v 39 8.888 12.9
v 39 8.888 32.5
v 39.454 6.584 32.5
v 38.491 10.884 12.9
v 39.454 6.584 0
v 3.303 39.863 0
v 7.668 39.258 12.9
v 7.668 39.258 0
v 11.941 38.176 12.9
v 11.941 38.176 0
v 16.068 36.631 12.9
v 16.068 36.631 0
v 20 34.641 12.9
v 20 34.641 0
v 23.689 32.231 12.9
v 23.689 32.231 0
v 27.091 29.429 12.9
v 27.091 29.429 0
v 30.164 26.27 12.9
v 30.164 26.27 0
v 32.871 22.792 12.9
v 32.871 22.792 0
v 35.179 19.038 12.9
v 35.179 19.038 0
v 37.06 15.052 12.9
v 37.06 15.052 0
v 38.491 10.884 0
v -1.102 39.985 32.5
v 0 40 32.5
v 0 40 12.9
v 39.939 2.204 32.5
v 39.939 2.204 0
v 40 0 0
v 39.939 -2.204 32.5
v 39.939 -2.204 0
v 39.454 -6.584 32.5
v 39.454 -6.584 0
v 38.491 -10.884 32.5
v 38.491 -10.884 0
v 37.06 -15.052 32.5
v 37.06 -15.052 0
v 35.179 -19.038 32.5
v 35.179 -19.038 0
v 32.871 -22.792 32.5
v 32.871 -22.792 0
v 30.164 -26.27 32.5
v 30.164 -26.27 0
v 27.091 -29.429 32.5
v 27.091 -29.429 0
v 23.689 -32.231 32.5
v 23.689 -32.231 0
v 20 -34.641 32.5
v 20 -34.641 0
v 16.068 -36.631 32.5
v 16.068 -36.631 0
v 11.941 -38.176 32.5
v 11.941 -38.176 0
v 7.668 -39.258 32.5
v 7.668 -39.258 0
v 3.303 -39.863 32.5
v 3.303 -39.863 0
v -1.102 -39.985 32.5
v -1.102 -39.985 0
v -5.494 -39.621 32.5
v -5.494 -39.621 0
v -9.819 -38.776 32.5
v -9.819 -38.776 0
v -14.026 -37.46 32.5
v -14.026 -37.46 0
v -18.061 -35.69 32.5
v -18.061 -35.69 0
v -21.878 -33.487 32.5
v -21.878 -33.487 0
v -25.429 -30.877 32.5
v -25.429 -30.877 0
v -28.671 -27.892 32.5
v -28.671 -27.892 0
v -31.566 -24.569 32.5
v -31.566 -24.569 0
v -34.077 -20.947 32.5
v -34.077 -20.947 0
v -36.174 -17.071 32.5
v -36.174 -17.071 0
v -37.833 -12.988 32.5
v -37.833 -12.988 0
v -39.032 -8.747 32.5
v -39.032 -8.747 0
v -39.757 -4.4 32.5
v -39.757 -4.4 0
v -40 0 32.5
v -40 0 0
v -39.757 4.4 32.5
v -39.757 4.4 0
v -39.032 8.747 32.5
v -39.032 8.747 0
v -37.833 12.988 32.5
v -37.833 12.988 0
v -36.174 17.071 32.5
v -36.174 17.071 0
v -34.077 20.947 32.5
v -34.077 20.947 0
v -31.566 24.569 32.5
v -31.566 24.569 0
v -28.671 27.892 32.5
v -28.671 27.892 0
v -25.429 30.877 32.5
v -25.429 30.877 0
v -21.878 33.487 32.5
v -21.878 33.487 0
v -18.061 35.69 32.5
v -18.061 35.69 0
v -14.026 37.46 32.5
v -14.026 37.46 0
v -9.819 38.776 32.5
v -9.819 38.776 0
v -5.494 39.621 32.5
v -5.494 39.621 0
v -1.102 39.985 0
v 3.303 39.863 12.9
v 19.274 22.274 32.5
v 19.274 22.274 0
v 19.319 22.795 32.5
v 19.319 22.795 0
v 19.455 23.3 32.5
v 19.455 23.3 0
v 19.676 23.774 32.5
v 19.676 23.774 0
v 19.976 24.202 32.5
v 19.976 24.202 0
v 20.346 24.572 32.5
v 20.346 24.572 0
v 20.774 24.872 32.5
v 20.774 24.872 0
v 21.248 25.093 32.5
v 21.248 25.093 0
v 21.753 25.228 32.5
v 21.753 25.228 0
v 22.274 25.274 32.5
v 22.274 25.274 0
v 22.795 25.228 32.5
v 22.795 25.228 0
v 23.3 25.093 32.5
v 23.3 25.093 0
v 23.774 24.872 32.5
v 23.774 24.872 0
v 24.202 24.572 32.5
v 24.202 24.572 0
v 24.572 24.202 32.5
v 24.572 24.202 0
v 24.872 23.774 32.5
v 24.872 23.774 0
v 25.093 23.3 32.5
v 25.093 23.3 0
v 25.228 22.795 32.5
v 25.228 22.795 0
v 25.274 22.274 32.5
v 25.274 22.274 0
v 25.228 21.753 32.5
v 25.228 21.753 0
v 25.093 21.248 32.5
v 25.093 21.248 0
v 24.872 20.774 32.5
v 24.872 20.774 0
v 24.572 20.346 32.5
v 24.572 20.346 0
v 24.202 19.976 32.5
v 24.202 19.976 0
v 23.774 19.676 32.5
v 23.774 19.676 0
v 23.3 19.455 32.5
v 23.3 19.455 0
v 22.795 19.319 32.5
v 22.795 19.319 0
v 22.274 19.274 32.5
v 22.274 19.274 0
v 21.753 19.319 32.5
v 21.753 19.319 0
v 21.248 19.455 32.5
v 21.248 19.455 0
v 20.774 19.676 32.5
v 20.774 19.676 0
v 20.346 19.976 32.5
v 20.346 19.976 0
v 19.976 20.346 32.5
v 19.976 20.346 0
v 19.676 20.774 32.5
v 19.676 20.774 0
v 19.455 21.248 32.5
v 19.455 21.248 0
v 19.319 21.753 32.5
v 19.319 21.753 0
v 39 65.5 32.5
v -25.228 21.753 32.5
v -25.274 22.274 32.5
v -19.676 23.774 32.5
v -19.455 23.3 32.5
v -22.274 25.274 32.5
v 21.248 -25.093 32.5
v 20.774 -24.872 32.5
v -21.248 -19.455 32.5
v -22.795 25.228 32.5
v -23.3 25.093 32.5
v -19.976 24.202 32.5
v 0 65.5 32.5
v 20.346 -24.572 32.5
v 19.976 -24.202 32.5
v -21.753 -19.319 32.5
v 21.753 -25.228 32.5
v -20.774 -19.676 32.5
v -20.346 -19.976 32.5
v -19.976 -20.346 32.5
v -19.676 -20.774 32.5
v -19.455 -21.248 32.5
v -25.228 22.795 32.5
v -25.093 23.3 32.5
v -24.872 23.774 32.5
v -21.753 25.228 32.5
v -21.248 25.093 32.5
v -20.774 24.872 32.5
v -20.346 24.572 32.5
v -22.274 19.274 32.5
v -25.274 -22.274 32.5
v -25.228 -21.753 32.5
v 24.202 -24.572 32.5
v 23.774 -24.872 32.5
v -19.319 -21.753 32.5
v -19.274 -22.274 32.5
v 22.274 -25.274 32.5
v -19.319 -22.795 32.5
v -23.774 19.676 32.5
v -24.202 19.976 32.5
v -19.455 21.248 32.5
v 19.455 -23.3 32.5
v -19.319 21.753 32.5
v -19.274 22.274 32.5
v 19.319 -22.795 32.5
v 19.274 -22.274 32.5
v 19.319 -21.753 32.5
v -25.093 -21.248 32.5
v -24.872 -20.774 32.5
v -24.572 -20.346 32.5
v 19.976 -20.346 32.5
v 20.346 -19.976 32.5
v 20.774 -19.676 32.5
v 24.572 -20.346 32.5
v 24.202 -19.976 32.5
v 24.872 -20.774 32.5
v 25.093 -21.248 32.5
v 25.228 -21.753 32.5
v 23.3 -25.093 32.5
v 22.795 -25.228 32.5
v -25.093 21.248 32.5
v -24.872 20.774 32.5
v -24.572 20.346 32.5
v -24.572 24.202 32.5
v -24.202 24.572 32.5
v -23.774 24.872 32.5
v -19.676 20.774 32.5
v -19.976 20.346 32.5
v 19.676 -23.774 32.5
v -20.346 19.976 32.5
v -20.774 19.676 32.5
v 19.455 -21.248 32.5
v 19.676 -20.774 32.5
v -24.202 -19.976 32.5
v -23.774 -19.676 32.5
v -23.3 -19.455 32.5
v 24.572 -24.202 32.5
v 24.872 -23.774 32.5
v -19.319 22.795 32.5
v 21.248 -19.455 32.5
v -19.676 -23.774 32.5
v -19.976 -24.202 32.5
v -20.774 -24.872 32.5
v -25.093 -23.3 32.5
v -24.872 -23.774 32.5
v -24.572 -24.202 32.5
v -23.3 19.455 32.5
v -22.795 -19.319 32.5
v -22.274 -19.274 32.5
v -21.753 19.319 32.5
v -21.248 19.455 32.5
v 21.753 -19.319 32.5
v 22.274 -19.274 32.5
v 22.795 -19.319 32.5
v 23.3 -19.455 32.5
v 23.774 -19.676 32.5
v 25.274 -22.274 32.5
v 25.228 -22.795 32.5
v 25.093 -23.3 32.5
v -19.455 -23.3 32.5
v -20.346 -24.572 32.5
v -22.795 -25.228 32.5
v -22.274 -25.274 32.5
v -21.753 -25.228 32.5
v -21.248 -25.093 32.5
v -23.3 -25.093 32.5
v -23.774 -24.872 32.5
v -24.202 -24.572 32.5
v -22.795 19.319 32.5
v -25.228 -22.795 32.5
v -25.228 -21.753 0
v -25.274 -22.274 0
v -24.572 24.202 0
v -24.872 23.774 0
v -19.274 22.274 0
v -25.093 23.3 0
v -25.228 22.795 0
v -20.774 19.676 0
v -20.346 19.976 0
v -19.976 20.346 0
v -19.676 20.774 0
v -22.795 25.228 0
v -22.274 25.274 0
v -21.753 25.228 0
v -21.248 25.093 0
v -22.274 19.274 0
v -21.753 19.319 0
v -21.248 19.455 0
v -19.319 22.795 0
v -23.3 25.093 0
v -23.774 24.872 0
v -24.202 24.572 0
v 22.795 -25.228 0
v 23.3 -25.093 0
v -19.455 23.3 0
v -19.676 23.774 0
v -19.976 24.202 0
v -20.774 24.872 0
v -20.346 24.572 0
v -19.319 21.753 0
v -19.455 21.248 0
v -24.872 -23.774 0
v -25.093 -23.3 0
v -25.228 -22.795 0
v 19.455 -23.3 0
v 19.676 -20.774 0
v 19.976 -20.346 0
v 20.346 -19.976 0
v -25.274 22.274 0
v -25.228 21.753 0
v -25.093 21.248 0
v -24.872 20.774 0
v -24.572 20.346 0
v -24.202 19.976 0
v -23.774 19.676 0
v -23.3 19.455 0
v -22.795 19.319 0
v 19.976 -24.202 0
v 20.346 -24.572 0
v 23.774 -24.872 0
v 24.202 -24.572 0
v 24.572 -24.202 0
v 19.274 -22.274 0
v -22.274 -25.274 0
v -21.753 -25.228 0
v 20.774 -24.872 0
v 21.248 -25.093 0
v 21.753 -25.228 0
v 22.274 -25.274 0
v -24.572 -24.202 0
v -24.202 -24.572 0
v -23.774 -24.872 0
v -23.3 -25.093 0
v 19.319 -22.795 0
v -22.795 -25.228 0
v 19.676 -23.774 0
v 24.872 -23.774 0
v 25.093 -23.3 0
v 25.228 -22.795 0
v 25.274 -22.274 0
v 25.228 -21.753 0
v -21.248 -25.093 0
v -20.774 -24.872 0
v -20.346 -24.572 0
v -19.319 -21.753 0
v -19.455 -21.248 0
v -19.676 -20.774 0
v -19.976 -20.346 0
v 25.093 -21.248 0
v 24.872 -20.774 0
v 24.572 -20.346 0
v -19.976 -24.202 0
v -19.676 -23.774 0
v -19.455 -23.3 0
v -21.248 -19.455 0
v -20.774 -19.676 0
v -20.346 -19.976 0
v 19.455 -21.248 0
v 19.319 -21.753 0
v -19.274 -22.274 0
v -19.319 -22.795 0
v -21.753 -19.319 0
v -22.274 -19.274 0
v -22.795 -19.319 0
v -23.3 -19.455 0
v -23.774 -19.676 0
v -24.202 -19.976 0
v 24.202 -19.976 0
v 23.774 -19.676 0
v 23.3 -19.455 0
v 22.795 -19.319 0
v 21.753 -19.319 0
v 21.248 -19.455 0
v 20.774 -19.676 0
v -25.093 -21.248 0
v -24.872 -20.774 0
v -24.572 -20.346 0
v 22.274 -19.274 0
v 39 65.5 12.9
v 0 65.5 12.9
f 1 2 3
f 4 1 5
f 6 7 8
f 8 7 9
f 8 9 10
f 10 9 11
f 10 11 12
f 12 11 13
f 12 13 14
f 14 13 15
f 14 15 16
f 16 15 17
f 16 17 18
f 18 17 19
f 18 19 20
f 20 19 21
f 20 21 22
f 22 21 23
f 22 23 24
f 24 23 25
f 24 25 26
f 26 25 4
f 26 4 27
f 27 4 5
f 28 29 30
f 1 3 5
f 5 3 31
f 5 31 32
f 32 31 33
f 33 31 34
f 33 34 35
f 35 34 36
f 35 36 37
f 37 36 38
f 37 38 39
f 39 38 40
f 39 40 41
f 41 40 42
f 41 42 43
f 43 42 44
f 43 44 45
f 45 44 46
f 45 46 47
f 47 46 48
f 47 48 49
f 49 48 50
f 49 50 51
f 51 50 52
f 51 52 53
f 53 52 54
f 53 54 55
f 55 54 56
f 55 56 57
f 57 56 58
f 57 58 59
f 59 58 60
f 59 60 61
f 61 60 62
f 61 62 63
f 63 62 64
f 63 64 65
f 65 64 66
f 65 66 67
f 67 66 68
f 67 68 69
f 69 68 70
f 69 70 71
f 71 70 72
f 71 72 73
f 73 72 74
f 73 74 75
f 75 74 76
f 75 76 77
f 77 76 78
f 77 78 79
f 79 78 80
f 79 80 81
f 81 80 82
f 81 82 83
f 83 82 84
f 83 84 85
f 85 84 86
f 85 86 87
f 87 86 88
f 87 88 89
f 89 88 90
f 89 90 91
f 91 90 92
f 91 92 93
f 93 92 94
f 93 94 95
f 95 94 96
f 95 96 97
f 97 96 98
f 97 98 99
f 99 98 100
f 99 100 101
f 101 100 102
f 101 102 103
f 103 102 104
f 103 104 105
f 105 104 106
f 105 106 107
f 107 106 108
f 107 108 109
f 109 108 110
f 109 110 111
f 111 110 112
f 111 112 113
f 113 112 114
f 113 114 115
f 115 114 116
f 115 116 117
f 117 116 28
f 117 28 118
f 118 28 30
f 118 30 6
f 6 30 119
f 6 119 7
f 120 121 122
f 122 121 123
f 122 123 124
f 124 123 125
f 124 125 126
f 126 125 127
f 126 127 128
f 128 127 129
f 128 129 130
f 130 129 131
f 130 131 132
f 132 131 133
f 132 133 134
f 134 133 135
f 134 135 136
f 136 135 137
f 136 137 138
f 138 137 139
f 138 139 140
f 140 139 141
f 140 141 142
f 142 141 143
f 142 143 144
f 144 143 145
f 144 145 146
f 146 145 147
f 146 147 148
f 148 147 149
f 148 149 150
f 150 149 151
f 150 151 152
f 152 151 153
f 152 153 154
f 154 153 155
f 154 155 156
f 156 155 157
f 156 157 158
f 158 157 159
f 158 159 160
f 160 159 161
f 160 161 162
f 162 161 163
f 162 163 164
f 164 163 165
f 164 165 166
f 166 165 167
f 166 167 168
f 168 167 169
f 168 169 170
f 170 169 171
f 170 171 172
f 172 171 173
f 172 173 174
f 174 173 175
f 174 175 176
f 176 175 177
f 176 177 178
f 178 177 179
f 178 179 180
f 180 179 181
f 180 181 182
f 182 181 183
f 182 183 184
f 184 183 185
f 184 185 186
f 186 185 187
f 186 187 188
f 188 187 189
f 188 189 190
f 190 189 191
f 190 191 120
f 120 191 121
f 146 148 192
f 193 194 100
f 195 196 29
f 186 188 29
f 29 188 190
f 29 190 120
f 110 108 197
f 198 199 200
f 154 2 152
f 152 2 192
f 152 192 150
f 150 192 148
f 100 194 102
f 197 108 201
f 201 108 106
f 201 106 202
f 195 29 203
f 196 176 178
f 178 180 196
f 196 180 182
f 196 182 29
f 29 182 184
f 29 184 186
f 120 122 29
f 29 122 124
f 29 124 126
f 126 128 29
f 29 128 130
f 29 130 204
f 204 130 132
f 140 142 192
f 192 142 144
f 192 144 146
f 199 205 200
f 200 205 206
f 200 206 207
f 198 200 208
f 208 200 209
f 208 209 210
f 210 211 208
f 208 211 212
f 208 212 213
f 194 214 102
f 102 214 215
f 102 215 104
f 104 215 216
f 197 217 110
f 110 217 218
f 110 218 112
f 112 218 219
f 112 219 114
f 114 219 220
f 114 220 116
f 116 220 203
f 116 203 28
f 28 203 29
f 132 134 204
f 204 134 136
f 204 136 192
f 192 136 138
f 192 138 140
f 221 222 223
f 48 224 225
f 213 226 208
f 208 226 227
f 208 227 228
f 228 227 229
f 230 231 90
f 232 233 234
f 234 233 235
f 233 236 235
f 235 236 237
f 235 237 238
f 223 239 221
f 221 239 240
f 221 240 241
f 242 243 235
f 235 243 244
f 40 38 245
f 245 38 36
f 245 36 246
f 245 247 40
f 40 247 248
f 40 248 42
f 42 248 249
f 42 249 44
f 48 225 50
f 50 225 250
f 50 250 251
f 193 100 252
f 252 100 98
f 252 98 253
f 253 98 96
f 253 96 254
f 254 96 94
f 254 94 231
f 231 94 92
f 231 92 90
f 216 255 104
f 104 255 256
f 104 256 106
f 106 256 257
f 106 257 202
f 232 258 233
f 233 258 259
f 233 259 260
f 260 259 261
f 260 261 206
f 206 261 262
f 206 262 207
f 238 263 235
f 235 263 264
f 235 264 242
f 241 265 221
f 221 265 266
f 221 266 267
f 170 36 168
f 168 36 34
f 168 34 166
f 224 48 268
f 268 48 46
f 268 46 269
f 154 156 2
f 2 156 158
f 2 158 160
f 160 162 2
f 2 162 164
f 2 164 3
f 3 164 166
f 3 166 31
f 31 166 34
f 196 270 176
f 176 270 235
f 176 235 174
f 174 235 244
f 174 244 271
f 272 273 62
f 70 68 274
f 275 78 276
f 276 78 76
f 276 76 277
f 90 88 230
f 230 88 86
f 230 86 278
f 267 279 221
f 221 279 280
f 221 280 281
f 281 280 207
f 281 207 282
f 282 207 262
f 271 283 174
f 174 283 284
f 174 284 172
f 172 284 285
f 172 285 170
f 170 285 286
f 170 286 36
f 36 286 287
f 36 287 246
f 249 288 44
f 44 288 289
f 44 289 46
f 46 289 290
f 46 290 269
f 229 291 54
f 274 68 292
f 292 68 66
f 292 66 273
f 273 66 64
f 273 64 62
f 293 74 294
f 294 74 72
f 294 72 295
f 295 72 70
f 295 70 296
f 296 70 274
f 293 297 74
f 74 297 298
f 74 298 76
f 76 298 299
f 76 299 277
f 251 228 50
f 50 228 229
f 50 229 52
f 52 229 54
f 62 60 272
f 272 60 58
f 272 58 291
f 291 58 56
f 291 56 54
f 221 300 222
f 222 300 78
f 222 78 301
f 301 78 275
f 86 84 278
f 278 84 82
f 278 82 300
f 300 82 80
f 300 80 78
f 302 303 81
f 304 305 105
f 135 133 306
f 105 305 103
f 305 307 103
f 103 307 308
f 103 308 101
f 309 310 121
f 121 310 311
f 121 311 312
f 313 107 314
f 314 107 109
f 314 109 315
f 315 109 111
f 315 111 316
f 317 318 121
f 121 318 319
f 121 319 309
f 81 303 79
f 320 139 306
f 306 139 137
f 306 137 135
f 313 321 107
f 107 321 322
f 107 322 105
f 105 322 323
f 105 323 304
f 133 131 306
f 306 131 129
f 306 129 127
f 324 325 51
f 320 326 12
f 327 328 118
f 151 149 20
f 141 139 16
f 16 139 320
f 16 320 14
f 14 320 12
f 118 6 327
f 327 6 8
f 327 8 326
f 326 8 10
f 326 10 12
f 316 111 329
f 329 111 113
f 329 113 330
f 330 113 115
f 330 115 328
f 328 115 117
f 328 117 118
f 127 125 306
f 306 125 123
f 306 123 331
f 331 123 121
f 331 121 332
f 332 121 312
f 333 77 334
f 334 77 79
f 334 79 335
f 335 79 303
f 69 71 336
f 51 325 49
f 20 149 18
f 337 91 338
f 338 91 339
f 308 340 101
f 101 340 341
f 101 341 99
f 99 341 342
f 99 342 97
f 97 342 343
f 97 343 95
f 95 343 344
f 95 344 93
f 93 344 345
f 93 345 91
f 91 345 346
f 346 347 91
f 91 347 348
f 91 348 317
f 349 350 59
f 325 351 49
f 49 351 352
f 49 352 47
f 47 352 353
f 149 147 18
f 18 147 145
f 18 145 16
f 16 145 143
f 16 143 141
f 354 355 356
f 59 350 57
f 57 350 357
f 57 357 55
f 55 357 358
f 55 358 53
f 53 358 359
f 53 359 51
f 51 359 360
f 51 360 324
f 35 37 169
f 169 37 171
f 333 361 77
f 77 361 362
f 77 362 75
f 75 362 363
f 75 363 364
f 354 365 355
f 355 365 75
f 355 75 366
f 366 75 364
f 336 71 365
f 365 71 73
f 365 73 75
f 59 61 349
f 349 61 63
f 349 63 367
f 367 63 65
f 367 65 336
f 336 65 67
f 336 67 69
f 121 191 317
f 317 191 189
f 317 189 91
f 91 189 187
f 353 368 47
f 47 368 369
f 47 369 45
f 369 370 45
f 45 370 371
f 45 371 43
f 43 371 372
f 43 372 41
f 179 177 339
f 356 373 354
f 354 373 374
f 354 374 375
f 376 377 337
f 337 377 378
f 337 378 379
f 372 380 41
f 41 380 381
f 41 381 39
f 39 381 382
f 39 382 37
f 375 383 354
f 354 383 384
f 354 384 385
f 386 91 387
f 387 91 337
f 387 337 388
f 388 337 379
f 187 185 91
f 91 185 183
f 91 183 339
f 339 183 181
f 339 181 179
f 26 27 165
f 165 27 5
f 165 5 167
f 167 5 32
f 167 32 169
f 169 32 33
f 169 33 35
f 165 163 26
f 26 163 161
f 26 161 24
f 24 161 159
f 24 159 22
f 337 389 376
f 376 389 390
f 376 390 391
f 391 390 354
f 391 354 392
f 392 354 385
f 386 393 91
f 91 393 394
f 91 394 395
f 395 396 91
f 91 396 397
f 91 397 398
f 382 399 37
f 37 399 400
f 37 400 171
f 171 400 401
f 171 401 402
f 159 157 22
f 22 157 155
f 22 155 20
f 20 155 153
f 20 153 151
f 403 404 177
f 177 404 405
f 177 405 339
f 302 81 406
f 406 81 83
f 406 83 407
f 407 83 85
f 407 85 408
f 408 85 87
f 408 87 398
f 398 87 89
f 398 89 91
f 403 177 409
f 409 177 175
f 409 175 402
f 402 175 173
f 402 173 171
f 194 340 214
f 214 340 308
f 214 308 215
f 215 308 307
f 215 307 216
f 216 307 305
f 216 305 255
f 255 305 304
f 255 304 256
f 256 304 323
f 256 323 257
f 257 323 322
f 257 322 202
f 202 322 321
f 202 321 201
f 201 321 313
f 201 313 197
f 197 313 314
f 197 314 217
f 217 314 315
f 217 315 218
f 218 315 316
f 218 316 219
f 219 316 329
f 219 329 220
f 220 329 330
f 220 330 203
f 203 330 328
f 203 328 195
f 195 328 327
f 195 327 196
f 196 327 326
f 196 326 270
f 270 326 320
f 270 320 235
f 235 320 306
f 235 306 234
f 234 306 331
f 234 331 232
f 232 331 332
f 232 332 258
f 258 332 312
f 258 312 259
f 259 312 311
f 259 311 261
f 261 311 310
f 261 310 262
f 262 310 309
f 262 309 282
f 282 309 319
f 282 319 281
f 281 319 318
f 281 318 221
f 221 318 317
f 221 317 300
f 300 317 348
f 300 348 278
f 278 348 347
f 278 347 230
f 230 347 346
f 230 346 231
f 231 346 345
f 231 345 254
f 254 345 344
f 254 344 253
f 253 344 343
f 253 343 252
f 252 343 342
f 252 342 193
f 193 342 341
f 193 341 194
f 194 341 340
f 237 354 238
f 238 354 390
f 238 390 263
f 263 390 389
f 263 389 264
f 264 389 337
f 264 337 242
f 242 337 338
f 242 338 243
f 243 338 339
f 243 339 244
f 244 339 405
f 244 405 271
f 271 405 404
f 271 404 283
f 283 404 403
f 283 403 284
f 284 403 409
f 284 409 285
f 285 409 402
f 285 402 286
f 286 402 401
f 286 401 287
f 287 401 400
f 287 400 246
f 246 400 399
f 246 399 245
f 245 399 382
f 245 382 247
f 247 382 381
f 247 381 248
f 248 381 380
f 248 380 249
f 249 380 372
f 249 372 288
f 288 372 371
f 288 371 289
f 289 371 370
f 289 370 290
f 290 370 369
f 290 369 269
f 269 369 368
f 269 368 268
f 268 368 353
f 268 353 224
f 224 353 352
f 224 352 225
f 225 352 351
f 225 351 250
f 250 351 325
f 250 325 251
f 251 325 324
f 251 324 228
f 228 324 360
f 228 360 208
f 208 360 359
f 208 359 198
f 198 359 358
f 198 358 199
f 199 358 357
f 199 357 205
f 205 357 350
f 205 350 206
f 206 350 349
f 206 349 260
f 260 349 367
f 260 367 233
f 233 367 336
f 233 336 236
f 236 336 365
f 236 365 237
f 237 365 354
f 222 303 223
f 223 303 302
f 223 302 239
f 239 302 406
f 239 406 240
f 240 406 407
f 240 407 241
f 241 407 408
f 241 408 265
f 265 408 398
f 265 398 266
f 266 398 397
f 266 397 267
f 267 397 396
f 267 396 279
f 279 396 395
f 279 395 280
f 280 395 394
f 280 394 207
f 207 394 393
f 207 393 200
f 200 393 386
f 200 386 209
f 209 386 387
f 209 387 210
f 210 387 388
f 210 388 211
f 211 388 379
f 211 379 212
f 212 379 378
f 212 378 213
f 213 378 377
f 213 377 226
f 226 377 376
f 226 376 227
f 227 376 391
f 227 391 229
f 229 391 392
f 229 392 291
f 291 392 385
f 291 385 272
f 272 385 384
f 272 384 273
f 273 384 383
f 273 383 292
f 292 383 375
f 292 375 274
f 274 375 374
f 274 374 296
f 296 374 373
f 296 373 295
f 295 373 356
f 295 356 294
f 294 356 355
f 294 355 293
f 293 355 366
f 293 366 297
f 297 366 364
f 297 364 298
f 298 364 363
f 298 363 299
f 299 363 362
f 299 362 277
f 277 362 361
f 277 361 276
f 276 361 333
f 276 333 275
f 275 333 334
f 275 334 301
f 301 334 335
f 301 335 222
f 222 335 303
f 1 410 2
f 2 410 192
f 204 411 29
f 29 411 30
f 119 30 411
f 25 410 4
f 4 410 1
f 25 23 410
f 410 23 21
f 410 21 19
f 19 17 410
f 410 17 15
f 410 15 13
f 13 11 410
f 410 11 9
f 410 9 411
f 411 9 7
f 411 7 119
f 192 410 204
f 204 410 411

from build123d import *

# Parameters (mm, degrees)
SKETCH_1_R          = 40
SKETCH_1_R_2        = 3
EXTRUDE_1_DEPTH     = 32.5
SKETCH_3_W          = 19.6
SKETCH_3_H          = 65.5
EXTRUDE_2_DEPTH     = 39
SKETCH_4_R          = 3
CUT_EXTRUDE_2_DEPTH = 57


with BuildPart() as part:
    # 草图1 → 凸台-拉伸1 (new body)
    with BuildSketch(Plane.XY):
        Circle(SKETCH_1_R)
        with Locations((-22.273863607, 22.273863607)):
            Circle(SKETCH_1_R_2, mode=Mode.SUBTRACT)
        with Locations((22.273863607, 22.273863607)):
            Circle(SKETCH_1_R_2, mode=Mode.SUBTRACT)
        with Locations((22.273863607, -22.273863607)):
            Circle(SKETCH_1_R_2, mode=Mode.SUBTRACT)
        with Locations((-22.273863607, -22.273863607)):
            Circle(SKETCH_1_R_2, mode=Mode.SUBTRACT)
    extrude(amount=EXTRUDE_1_DEPTH)

    # 草图3 → 凸台-拉伸2 (add)
    with BuildSketch(Plane(origin=(0, 0, 0), x_dir=(0, 0, -1), z_dir=(1, 0, 0))):
        with Locations((-22.7, 32.75)):
            Rectangle(SKETCH_3_W, SKETCH_3_H)
    extrude(amount=EXTRUDE_2_DEPTH)

    # 草图4 → 切除-拉伸2 (cut)
    with BuildSketch(Plane.XY):
        with Locations((22.273863607, 22.273863607)):
            Circle(SKETCH_4_R)
    extrude(amount=CUT_EXTRUDE_2_DEPTH, mode=Mode.SUBTRACT)


solid = part.part
